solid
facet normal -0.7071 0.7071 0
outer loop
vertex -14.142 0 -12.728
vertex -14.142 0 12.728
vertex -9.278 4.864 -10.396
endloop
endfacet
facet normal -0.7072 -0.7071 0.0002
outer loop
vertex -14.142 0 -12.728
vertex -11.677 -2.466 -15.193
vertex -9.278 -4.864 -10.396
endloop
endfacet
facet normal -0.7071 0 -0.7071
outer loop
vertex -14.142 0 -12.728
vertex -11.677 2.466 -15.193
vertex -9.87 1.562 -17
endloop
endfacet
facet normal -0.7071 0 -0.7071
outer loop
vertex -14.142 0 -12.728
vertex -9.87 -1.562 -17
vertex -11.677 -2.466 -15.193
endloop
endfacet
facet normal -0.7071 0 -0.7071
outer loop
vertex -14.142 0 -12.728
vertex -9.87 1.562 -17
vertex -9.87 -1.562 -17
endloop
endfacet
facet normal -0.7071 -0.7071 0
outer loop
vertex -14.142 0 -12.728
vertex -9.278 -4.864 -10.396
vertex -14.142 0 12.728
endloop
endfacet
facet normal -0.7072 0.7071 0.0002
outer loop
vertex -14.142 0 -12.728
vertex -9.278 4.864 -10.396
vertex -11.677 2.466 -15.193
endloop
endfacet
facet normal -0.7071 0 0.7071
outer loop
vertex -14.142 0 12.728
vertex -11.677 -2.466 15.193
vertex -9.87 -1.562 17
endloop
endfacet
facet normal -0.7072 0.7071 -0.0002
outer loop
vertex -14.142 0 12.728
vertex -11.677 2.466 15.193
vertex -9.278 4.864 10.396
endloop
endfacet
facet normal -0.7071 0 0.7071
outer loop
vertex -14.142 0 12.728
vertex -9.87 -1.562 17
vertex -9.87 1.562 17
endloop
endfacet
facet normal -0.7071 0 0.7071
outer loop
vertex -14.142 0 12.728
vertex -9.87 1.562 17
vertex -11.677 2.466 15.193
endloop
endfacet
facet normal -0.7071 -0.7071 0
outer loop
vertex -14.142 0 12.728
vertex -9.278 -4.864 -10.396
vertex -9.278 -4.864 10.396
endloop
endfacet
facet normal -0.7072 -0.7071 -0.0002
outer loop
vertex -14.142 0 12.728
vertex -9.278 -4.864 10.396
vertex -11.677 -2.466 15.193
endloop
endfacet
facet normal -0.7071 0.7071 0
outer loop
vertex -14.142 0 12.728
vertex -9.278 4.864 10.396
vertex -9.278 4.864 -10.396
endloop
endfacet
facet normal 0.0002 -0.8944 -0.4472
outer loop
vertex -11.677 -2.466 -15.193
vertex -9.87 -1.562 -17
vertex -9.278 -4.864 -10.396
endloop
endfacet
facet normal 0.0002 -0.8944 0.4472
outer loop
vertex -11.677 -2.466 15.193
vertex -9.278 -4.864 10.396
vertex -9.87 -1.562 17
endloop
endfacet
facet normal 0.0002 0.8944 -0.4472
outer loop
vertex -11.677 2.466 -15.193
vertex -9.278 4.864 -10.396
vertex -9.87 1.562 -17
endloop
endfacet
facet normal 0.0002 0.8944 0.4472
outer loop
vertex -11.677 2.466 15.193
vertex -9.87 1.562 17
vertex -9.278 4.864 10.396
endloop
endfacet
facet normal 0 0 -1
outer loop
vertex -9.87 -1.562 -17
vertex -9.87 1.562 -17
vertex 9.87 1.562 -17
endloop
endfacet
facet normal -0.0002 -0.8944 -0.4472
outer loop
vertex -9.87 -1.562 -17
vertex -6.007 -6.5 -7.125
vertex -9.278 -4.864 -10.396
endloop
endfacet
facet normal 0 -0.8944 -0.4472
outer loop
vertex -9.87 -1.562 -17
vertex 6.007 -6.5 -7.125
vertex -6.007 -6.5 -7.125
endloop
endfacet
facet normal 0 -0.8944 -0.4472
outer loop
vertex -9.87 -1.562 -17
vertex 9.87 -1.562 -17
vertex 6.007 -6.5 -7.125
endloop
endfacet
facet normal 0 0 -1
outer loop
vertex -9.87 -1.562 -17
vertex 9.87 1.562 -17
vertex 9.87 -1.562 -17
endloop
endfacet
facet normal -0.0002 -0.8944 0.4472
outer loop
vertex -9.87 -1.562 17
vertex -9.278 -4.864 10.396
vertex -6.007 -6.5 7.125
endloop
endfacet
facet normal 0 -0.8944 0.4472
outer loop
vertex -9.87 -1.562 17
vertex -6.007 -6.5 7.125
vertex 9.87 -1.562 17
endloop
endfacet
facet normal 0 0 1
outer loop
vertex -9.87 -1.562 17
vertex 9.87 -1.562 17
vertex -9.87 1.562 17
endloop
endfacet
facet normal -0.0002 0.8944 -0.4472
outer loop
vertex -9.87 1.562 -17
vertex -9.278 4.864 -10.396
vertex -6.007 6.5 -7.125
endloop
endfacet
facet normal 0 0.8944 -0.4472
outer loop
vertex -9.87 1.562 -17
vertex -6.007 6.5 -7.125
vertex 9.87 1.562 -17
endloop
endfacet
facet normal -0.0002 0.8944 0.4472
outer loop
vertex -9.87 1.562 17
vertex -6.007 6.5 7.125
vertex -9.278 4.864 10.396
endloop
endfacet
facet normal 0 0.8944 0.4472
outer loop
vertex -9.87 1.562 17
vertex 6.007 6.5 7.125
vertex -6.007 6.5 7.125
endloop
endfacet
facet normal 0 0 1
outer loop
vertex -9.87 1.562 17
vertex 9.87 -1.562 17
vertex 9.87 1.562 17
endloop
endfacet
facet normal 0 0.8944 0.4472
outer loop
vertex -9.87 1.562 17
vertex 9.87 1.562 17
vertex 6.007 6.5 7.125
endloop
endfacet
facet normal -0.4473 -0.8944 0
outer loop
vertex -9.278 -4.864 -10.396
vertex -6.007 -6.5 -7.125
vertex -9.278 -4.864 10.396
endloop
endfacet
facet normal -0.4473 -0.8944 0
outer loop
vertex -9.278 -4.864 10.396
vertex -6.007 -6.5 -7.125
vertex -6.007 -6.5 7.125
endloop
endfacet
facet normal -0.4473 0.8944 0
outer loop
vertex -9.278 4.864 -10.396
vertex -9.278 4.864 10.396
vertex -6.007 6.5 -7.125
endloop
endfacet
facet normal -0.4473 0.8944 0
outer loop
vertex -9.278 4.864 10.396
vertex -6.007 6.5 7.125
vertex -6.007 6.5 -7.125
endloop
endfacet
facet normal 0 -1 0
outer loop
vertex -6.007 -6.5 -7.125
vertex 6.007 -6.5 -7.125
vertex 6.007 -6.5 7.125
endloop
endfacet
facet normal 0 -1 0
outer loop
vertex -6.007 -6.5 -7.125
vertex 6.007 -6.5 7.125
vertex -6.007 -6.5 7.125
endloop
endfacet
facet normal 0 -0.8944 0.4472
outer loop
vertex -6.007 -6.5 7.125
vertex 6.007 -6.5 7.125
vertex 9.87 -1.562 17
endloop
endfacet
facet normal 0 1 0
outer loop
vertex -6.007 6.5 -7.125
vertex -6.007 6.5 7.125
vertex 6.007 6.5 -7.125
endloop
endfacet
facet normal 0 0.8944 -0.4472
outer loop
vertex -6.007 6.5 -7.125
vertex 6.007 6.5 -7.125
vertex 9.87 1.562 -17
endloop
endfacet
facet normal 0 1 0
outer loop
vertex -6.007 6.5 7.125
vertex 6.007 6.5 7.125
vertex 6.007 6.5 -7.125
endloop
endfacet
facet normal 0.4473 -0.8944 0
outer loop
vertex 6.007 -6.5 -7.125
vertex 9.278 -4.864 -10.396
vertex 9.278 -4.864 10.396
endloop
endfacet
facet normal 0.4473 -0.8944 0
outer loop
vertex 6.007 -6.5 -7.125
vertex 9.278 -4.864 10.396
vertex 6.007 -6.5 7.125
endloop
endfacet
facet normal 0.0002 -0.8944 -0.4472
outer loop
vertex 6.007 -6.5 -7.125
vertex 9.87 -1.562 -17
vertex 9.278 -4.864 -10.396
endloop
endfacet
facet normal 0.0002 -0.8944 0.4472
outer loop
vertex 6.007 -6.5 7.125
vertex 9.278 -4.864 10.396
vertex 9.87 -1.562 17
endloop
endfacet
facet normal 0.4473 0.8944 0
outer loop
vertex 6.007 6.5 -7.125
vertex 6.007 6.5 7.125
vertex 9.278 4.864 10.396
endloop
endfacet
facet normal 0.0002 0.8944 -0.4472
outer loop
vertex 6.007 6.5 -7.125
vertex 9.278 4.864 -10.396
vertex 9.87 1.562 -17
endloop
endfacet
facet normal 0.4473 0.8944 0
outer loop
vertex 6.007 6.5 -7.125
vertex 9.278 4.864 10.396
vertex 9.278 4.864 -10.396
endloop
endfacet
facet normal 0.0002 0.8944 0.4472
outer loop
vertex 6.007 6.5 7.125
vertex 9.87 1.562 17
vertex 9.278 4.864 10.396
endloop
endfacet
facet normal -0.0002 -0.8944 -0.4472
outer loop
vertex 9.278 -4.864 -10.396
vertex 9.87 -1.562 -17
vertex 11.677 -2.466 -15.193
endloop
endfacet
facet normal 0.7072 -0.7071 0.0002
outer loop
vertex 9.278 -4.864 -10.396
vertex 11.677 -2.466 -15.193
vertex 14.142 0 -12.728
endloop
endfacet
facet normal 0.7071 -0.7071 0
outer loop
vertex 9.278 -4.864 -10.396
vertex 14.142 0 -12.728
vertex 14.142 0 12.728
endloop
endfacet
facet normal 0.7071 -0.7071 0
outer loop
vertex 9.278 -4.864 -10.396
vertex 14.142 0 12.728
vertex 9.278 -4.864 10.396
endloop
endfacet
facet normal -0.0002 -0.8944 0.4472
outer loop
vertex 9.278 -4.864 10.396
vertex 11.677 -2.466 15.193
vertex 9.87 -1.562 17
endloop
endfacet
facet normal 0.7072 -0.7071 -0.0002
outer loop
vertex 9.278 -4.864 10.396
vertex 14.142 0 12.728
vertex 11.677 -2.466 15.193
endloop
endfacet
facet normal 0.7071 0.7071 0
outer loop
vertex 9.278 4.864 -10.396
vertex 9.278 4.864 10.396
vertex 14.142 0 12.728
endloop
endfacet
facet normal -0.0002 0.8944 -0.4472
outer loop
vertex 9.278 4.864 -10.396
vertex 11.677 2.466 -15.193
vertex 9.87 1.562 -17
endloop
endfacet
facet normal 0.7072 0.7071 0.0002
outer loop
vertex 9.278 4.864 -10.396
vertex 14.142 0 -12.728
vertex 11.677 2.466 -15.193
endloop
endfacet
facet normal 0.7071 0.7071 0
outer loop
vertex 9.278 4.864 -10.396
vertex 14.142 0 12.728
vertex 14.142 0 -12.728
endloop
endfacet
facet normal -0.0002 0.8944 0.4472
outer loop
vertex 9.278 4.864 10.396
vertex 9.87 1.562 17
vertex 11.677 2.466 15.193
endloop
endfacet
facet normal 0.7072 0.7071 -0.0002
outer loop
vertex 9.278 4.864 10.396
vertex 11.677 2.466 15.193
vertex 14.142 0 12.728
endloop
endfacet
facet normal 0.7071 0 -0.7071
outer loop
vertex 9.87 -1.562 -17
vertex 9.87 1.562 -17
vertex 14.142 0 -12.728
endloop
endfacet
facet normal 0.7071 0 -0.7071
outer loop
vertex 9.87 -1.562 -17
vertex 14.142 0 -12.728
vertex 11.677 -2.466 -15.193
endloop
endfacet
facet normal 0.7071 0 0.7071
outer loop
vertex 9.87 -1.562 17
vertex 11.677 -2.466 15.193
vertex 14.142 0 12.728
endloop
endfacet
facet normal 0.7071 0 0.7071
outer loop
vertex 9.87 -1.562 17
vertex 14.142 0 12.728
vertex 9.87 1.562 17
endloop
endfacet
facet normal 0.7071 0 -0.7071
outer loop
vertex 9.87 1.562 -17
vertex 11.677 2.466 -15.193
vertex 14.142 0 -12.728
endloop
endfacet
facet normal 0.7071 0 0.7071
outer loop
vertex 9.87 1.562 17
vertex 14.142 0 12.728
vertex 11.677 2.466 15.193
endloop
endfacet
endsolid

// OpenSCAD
function z2miller(plane)=
let(p=plane/sqrt(plane*plane))
[0,acos(p[2]),atan2(p[1],p[0])];


intersection(){rotate(z2miller([0,0,1]))
cylinder(34,100,100,center=true);

rotate(z2miller([0,1,0]))
cylinder(13,100,100,center=true);

rotate(z2miller([0,2,1]))
cylinder(18,100,100,center=true);

rotate(z2miller([0,2,-1]))
cylinder(18,100,100,center=true);


t=38;
rotate(z2miller([1,0,-1]))
cylinder(t,100,100,center=true);
rotate(z2miller([1,0,1]))
cylinder(t,100,100,center=true);


t2=20;
rotate(z2miller([1,1,0]))
cylinder(t2,100,100,center=true);
rotate(z2miller([1,-1,0]))
cylinder(t2,100,100,center=true);


t3=17;
rotate(z2miller([1,2,0]))
cylinder(t3,100,100,center=true);
rotate(z2miller([1,-2,0]))
cylinder(t3,100,100,center=true);


}
